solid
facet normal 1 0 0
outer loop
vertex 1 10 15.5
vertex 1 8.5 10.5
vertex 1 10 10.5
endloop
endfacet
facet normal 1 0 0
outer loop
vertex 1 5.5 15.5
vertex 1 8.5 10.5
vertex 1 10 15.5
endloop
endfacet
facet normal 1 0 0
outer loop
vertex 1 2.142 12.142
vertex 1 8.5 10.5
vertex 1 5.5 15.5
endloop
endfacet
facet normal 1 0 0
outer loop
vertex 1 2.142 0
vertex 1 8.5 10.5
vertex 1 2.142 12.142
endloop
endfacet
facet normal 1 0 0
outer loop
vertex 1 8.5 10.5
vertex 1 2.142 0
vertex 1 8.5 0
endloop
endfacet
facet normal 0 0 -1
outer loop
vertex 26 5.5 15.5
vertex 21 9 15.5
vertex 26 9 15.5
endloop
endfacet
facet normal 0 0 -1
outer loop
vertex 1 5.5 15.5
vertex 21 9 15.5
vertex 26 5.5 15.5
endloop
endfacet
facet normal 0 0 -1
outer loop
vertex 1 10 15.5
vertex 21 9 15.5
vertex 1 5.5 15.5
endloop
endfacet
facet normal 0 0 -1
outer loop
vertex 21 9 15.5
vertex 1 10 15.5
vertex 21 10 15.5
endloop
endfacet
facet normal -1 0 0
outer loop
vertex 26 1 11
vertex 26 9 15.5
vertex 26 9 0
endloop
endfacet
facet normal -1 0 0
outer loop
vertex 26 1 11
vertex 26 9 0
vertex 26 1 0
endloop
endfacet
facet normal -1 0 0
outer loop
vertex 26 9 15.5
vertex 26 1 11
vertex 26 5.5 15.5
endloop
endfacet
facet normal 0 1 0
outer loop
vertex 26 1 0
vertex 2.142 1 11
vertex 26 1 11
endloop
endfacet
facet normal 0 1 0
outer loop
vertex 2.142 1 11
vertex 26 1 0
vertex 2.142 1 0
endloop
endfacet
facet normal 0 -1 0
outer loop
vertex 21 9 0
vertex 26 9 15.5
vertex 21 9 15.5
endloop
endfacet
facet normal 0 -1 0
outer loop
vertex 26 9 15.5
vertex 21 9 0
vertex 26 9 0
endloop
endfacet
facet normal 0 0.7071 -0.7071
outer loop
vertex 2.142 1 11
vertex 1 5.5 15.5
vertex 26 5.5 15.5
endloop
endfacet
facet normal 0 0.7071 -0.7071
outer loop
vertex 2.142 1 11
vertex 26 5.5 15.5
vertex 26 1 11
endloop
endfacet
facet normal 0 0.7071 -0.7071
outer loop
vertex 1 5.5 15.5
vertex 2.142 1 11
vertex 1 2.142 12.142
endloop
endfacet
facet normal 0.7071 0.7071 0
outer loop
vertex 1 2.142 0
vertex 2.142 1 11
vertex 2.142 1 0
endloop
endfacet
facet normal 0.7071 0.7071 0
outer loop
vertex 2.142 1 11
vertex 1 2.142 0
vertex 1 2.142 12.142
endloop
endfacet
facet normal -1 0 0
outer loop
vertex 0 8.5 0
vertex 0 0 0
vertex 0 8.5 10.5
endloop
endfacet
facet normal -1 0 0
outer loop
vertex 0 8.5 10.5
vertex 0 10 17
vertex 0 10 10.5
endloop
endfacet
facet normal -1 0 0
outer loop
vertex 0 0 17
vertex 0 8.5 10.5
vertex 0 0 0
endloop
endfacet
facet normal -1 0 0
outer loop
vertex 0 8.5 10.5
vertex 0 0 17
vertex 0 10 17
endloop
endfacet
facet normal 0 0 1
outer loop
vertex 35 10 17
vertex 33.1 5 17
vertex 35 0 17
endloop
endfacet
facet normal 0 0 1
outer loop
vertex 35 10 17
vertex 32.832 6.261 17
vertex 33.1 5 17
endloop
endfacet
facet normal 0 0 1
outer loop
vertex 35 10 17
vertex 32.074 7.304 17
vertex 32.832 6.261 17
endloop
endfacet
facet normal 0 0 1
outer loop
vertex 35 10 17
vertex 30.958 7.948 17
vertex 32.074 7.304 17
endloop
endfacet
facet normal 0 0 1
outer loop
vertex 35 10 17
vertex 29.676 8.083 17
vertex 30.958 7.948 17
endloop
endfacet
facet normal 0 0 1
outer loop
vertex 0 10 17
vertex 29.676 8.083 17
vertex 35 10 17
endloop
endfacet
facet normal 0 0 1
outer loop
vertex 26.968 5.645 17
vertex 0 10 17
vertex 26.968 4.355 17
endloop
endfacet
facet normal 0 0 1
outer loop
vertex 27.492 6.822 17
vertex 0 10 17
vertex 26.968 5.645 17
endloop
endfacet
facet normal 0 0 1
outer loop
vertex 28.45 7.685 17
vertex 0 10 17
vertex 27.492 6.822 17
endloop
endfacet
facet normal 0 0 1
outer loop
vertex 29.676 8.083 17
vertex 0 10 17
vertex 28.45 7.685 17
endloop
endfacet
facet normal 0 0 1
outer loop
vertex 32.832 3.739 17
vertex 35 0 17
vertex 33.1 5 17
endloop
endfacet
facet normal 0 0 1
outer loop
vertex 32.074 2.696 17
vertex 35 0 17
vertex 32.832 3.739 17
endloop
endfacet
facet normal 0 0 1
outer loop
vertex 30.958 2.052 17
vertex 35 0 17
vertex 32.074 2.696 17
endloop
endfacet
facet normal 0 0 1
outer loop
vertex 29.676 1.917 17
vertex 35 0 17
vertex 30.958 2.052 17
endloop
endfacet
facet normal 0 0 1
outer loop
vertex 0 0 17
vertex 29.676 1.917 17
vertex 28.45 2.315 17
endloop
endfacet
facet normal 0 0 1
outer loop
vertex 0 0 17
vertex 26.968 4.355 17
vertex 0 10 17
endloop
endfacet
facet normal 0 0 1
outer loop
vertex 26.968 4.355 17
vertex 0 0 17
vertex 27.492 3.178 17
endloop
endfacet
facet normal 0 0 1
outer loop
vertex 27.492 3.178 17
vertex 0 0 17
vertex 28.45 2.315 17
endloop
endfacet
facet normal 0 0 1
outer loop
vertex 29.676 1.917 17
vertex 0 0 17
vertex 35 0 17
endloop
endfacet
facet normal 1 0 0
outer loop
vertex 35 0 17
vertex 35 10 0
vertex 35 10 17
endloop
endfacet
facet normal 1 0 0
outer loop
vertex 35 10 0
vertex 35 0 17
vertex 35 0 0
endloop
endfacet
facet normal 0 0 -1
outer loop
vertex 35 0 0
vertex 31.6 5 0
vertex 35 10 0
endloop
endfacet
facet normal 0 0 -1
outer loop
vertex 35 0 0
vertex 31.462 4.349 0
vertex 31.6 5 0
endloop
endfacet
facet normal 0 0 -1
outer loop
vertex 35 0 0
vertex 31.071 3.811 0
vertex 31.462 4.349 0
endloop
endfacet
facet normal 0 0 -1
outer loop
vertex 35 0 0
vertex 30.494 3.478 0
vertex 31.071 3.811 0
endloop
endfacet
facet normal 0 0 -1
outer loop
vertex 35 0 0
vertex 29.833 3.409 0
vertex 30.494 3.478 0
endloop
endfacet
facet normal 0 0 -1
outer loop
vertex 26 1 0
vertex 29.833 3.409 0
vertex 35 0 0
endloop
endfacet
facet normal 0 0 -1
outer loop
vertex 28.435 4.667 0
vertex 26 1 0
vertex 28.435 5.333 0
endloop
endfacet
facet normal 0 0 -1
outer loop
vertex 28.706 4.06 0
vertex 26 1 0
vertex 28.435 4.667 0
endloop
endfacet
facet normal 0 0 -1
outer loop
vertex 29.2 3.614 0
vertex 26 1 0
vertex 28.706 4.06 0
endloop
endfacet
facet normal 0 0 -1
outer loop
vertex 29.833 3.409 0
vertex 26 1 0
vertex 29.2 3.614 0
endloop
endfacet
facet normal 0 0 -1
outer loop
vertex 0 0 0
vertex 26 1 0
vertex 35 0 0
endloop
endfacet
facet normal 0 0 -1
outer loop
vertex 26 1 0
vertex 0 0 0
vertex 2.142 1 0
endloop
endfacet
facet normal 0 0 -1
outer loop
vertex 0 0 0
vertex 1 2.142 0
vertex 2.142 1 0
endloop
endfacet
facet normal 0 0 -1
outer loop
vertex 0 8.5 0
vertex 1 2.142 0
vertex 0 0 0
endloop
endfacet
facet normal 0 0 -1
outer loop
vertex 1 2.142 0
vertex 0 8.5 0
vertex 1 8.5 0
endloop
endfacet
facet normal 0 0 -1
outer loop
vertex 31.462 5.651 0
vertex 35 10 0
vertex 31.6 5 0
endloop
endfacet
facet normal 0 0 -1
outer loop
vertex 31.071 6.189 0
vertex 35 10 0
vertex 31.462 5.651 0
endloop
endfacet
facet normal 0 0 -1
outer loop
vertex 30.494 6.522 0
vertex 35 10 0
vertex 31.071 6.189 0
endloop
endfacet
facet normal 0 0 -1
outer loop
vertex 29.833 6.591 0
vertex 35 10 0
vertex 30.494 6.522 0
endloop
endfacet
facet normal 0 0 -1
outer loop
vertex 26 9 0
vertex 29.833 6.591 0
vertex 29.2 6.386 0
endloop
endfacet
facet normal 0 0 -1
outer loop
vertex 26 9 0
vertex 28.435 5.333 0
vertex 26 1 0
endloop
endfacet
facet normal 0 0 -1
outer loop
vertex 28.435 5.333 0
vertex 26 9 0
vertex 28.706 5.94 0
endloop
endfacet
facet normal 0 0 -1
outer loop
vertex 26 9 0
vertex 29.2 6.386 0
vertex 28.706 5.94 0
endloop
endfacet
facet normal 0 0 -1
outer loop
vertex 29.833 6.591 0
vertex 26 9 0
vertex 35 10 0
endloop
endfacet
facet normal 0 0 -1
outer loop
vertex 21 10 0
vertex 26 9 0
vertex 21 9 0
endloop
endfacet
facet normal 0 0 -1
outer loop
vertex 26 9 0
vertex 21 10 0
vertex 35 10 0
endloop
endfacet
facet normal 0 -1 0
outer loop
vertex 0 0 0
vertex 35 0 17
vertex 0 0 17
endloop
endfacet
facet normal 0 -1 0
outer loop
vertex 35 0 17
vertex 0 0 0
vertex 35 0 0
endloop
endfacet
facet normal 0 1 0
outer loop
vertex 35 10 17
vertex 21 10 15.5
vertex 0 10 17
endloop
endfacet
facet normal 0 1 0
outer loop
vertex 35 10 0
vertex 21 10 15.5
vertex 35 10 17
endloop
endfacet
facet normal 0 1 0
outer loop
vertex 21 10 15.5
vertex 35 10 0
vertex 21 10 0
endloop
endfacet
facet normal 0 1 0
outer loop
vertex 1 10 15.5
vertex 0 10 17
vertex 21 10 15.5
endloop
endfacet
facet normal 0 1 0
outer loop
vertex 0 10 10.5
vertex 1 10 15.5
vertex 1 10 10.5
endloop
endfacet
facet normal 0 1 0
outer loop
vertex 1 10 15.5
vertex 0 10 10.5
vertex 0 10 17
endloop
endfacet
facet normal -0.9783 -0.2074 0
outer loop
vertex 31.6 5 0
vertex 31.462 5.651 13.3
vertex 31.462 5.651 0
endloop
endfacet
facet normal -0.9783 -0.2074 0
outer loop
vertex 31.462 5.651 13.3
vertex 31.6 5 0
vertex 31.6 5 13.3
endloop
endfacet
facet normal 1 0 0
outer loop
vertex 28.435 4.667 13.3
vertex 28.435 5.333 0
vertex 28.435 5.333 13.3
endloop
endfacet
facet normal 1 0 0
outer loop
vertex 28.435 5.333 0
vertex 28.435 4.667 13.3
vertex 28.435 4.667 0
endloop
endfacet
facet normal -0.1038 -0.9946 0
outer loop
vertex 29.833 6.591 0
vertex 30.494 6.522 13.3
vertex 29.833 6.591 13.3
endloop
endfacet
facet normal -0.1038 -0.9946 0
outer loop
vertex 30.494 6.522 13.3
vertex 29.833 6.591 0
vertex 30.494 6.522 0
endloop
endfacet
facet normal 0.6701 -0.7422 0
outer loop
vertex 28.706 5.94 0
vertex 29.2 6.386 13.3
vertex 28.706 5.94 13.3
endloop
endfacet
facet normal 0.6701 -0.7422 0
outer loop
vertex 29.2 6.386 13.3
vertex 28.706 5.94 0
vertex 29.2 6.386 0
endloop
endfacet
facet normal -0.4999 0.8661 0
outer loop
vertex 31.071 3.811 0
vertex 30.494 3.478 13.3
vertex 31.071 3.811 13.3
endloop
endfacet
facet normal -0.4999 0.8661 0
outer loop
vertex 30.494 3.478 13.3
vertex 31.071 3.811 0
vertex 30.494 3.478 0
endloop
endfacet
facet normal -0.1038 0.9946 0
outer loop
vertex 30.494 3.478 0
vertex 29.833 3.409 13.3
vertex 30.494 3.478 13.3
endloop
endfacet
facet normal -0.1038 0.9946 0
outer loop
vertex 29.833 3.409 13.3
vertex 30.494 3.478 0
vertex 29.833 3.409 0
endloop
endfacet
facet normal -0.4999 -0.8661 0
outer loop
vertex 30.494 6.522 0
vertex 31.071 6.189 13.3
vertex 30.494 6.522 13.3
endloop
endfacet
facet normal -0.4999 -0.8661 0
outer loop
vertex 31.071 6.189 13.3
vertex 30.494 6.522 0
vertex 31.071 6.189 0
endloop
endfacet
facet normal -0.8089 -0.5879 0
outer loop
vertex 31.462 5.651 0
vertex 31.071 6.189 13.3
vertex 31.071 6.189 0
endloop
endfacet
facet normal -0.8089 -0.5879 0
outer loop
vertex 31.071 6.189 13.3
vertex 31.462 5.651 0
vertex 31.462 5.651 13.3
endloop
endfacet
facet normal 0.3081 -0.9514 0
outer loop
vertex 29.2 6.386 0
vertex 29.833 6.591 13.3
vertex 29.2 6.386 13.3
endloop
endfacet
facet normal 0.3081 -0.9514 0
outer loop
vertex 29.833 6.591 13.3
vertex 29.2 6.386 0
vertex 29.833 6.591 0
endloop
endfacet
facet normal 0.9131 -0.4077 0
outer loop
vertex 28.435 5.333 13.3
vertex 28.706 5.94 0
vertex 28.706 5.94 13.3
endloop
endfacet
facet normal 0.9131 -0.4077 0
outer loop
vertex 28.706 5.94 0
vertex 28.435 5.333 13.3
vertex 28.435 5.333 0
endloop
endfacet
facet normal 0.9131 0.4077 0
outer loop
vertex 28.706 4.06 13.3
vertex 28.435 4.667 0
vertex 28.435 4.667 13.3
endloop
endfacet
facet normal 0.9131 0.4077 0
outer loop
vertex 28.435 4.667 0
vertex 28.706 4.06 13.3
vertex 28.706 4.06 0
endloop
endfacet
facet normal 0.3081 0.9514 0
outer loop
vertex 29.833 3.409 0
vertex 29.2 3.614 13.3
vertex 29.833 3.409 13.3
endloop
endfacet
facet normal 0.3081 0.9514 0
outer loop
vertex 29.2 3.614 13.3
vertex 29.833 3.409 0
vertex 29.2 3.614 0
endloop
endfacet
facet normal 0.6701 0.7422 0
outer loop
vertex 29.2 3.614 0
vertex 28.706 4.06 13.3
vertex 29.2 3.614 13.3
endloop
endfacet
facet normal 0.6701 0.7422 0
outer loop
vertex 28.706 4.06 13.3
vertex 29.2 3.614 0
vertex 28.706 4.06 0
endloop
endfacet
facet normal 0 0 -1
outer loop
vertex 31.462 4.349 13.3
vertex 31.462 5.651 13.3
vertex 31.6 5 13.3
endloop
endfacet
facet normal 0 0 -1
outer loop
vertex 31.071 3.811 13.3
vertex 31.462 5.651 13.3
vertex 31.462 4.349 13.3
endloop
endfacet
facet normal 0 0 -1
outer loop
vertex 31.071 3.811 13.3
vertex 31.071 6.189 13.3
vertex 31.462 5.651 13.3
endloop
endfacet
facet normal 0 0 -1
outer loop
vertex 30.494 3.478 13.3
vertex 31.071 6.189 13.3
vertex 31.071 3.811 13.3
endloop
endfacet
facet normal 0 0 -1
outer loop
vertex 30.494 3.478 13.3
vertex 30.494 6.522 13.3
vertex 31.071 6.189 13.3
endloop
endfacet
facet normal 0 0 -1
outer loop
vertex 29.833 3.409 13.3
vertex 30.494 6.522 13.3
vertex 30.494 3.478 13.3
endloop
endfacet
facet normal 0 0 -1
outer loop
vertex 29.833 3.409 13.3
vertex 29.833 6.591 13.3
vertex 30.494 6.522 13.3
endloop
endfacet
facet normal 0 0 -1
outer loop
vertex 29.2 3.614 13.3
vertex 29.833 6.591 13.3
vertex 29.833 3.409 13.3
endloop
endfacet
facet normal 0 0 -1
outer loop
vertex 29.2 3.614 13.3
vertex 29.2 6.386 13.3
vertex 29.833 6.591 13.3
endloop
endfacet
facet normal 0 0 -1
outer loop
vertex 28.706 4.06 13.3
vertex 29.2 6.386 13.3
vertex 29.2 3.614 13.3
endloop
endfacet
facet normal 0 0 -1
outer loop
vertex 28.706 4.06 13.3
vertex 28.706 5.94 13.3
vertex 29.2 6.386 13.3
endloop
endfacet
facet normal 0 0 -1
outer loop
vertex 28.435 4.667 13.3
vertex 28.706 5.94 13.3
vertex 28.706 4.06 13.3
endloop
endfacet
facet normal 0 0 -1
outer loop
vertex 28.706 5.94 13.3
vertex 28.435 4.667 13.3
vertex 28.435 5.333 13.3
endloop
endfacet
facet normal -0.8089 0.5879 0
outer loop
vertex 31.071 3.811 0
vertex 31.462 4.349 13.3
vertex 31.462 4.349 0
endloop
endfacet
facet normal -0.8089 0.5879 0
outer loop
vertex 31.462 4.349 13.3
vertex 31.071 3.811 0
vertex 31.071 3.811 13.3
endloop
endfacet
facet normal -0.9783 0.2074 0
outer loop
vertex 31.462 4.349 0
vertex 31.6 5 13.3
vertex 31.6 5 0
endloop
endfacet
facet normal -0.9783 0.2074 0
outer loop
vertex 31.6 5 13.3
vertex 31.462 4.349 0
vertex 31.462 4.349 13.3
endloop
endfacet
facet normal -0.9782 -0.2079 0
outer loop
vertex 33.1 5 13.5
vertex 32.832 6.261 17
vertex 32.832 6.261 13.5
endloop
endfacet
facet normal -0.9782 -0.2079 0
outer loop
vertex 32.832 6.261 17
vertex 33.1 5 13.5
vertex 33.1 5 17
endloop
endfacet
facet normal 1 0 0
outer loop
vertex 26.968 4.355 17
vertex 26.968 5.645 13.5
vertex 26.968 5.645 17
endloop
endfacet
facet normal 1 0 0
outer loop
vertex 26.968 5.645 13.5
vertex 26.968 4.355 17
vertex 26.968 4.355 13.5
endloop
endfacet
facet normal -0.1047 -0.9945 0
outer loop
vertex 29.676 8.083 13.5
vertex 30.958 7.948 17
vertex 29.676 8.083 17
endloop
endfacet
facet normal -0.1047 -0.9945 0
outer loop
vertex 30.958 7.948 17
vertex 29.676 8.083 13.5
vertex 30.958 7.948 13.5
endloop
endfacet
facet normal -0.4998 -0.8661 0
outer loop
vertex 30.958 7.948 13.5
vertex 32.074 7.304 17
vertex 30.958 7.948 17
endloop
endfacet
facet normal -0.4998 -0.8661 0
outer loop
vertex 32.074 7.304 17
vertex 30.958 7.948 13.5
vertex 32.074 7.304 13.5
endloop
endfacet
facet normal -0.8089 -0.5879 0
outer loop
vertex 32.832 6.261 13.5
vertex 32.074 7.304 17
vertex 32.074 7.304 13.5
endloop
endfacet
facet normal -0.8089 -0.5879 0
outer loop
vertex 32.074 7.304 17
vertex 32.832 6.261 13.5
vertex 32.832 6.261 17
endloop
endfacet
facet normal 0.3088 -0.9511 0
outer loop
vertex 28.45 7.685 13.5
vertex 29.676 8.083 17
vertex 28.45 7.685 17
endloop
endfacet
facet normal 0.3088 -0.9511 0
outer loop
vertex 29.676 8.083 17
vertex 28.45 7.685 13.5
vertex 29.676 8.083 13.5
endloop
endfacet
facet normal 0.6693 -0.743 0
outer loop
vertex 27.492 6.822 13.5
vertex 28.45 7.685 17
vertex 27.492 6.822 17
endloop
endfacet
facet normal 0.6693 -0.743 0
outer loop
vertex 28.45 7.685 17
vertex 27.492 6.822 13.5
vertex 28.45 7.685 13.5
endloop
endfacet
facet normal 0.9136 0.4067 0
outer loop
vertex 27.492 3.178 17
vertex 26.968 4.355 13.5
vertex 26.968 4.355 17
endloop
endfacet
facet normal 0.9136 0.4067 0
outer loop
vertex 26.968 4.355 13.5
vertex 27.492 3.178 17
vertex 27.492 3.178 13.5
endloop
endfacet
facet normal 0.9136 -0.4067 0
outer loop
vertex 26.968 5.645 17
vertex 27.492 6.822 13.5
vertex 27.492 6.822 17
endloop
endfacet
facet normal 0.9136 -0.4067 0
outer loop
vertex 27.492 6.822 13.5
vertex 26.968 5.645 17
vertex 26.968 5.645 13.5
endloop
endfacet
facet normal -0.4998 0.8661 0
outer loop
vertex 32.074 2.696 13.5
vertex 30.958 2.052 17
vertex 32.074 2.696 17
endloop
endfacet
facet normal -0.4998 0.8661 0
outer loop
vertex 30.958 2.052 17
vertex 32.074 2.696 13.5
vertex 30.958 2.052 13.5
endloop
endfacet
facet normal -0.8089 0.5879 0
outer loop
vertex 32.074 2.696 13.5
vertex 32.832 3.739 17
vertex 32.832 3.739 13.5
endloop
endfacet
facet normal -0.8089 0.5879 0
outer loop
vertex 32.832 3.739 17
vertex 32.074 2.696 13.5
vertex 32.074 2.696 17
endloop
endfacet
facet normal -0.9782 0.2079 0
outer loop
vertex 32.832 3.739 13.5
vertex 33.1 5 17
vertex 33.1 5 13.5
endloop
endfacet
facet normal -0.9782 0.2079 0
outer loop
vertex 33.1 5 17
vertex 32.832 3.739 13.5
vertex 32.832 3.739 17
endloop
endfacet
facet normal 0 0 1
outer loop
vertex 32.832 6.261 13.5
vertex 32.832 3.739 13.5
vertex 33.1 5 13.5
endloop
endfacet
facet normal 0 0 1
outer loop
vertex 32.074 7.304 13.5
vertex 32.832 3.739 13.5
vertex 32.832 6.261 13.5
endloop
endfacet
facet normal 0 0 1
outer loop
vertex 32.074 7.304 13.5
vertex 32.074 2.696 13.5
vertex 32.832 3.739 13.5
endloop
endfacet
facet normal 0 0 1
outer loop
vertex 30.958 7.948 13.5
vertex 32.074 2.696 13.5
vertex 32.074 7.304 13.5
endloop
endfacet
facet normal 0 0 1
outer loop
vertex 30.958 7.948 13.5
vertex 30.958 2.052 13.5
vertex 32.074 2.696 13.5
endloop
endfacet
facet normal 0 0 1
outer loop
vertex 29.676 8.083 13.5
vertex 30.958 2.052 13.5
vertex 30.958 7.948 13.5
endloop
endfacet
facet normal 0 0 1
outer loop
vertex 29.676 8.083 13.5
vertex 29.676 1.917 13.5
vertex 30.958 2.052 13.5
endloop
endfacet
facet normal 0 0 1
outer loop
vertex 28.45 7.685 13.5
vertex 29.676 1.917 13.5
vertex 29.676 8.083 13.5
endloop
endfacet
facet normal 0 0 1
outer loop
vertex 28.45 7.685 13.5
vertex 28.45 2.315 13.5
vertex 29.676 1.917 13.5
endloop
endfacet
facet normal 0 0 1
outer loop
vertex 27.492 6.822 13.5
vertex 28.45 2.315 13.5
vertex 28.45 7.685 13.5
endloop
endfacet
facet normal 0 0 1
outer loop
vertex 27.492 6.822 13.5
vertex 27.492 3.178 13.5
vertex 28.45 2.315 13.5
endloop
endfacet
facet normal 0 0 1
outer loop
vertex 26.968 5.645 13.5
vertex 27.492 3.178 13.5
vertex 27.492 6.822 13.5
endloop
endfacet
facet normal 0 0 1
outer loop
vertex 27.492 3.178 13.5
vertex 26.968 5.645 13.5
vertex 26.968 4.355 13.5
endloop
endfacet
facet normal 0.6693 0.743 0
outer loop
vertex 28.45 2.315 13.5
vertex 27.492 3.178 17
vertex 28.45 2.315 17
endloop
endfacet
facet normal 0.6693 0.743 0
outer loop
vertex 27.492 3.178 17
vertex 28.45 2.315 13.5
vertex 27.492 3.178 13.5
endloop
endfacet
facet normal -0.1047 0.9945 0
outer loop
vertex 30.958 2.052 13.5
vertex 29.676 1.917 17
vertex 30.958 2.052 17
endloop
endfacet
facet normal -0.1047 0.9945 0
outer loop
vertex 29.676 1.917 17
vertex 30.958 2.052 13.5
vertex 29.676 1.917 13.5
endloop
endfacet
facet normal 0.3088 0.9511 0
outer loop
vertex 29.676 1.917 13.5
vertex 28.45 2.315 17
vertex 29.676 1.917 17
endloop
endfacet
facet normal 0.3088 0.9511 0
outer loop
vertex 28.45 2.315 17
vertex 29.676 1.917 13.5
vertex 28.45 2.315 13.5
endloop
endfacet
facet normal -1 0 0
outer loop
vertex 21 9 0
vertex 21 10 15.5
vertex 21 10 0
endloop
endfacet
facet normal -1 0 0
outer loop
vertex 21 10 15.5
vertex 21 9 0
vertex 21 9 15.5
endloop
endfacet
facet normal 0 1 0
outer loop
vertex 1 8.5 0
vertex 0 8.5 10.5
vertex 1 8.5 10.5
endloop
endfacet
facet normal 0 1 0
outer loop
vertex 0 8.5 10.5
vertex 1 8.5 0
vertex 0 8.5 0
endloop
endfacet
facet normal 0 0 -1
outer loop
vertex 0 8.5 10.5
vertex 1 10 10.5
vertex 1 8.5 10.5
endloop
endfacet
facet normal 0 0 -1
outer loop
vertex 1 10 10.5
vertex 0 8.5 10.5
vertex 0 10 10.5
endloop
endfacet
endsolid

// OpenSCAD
module fan_nozzle(){
    
difference(){    
cube([35,10,17]); // Main cube

// Mounting screw
translate([30,5,-1])cylinder(r=3.2/2,h = 14.5-0.2, $fn=15); // Screw cut
translate([30,5,17-3.5])cylinder(r=3.1,h = 20, $fn=15); // head cut

// Fan entry hole
translate([1,10-1.5,-1])cube([20,3,16.5]);
translate([-1,10-1.5,-1-5])cube([20,3,16.5]);
    
// Airway cutout
difference(){    
translate([1,1,-1])cube([25,8,16.5]);    
translate([0,0,10])rotate([45,0,0])cube([30,8,16.5]);    
translate([-1,-10,-1])rotate([0,0,45])cube([10,8,30]); 
}


    
}

    
}

fan_nozzle();
